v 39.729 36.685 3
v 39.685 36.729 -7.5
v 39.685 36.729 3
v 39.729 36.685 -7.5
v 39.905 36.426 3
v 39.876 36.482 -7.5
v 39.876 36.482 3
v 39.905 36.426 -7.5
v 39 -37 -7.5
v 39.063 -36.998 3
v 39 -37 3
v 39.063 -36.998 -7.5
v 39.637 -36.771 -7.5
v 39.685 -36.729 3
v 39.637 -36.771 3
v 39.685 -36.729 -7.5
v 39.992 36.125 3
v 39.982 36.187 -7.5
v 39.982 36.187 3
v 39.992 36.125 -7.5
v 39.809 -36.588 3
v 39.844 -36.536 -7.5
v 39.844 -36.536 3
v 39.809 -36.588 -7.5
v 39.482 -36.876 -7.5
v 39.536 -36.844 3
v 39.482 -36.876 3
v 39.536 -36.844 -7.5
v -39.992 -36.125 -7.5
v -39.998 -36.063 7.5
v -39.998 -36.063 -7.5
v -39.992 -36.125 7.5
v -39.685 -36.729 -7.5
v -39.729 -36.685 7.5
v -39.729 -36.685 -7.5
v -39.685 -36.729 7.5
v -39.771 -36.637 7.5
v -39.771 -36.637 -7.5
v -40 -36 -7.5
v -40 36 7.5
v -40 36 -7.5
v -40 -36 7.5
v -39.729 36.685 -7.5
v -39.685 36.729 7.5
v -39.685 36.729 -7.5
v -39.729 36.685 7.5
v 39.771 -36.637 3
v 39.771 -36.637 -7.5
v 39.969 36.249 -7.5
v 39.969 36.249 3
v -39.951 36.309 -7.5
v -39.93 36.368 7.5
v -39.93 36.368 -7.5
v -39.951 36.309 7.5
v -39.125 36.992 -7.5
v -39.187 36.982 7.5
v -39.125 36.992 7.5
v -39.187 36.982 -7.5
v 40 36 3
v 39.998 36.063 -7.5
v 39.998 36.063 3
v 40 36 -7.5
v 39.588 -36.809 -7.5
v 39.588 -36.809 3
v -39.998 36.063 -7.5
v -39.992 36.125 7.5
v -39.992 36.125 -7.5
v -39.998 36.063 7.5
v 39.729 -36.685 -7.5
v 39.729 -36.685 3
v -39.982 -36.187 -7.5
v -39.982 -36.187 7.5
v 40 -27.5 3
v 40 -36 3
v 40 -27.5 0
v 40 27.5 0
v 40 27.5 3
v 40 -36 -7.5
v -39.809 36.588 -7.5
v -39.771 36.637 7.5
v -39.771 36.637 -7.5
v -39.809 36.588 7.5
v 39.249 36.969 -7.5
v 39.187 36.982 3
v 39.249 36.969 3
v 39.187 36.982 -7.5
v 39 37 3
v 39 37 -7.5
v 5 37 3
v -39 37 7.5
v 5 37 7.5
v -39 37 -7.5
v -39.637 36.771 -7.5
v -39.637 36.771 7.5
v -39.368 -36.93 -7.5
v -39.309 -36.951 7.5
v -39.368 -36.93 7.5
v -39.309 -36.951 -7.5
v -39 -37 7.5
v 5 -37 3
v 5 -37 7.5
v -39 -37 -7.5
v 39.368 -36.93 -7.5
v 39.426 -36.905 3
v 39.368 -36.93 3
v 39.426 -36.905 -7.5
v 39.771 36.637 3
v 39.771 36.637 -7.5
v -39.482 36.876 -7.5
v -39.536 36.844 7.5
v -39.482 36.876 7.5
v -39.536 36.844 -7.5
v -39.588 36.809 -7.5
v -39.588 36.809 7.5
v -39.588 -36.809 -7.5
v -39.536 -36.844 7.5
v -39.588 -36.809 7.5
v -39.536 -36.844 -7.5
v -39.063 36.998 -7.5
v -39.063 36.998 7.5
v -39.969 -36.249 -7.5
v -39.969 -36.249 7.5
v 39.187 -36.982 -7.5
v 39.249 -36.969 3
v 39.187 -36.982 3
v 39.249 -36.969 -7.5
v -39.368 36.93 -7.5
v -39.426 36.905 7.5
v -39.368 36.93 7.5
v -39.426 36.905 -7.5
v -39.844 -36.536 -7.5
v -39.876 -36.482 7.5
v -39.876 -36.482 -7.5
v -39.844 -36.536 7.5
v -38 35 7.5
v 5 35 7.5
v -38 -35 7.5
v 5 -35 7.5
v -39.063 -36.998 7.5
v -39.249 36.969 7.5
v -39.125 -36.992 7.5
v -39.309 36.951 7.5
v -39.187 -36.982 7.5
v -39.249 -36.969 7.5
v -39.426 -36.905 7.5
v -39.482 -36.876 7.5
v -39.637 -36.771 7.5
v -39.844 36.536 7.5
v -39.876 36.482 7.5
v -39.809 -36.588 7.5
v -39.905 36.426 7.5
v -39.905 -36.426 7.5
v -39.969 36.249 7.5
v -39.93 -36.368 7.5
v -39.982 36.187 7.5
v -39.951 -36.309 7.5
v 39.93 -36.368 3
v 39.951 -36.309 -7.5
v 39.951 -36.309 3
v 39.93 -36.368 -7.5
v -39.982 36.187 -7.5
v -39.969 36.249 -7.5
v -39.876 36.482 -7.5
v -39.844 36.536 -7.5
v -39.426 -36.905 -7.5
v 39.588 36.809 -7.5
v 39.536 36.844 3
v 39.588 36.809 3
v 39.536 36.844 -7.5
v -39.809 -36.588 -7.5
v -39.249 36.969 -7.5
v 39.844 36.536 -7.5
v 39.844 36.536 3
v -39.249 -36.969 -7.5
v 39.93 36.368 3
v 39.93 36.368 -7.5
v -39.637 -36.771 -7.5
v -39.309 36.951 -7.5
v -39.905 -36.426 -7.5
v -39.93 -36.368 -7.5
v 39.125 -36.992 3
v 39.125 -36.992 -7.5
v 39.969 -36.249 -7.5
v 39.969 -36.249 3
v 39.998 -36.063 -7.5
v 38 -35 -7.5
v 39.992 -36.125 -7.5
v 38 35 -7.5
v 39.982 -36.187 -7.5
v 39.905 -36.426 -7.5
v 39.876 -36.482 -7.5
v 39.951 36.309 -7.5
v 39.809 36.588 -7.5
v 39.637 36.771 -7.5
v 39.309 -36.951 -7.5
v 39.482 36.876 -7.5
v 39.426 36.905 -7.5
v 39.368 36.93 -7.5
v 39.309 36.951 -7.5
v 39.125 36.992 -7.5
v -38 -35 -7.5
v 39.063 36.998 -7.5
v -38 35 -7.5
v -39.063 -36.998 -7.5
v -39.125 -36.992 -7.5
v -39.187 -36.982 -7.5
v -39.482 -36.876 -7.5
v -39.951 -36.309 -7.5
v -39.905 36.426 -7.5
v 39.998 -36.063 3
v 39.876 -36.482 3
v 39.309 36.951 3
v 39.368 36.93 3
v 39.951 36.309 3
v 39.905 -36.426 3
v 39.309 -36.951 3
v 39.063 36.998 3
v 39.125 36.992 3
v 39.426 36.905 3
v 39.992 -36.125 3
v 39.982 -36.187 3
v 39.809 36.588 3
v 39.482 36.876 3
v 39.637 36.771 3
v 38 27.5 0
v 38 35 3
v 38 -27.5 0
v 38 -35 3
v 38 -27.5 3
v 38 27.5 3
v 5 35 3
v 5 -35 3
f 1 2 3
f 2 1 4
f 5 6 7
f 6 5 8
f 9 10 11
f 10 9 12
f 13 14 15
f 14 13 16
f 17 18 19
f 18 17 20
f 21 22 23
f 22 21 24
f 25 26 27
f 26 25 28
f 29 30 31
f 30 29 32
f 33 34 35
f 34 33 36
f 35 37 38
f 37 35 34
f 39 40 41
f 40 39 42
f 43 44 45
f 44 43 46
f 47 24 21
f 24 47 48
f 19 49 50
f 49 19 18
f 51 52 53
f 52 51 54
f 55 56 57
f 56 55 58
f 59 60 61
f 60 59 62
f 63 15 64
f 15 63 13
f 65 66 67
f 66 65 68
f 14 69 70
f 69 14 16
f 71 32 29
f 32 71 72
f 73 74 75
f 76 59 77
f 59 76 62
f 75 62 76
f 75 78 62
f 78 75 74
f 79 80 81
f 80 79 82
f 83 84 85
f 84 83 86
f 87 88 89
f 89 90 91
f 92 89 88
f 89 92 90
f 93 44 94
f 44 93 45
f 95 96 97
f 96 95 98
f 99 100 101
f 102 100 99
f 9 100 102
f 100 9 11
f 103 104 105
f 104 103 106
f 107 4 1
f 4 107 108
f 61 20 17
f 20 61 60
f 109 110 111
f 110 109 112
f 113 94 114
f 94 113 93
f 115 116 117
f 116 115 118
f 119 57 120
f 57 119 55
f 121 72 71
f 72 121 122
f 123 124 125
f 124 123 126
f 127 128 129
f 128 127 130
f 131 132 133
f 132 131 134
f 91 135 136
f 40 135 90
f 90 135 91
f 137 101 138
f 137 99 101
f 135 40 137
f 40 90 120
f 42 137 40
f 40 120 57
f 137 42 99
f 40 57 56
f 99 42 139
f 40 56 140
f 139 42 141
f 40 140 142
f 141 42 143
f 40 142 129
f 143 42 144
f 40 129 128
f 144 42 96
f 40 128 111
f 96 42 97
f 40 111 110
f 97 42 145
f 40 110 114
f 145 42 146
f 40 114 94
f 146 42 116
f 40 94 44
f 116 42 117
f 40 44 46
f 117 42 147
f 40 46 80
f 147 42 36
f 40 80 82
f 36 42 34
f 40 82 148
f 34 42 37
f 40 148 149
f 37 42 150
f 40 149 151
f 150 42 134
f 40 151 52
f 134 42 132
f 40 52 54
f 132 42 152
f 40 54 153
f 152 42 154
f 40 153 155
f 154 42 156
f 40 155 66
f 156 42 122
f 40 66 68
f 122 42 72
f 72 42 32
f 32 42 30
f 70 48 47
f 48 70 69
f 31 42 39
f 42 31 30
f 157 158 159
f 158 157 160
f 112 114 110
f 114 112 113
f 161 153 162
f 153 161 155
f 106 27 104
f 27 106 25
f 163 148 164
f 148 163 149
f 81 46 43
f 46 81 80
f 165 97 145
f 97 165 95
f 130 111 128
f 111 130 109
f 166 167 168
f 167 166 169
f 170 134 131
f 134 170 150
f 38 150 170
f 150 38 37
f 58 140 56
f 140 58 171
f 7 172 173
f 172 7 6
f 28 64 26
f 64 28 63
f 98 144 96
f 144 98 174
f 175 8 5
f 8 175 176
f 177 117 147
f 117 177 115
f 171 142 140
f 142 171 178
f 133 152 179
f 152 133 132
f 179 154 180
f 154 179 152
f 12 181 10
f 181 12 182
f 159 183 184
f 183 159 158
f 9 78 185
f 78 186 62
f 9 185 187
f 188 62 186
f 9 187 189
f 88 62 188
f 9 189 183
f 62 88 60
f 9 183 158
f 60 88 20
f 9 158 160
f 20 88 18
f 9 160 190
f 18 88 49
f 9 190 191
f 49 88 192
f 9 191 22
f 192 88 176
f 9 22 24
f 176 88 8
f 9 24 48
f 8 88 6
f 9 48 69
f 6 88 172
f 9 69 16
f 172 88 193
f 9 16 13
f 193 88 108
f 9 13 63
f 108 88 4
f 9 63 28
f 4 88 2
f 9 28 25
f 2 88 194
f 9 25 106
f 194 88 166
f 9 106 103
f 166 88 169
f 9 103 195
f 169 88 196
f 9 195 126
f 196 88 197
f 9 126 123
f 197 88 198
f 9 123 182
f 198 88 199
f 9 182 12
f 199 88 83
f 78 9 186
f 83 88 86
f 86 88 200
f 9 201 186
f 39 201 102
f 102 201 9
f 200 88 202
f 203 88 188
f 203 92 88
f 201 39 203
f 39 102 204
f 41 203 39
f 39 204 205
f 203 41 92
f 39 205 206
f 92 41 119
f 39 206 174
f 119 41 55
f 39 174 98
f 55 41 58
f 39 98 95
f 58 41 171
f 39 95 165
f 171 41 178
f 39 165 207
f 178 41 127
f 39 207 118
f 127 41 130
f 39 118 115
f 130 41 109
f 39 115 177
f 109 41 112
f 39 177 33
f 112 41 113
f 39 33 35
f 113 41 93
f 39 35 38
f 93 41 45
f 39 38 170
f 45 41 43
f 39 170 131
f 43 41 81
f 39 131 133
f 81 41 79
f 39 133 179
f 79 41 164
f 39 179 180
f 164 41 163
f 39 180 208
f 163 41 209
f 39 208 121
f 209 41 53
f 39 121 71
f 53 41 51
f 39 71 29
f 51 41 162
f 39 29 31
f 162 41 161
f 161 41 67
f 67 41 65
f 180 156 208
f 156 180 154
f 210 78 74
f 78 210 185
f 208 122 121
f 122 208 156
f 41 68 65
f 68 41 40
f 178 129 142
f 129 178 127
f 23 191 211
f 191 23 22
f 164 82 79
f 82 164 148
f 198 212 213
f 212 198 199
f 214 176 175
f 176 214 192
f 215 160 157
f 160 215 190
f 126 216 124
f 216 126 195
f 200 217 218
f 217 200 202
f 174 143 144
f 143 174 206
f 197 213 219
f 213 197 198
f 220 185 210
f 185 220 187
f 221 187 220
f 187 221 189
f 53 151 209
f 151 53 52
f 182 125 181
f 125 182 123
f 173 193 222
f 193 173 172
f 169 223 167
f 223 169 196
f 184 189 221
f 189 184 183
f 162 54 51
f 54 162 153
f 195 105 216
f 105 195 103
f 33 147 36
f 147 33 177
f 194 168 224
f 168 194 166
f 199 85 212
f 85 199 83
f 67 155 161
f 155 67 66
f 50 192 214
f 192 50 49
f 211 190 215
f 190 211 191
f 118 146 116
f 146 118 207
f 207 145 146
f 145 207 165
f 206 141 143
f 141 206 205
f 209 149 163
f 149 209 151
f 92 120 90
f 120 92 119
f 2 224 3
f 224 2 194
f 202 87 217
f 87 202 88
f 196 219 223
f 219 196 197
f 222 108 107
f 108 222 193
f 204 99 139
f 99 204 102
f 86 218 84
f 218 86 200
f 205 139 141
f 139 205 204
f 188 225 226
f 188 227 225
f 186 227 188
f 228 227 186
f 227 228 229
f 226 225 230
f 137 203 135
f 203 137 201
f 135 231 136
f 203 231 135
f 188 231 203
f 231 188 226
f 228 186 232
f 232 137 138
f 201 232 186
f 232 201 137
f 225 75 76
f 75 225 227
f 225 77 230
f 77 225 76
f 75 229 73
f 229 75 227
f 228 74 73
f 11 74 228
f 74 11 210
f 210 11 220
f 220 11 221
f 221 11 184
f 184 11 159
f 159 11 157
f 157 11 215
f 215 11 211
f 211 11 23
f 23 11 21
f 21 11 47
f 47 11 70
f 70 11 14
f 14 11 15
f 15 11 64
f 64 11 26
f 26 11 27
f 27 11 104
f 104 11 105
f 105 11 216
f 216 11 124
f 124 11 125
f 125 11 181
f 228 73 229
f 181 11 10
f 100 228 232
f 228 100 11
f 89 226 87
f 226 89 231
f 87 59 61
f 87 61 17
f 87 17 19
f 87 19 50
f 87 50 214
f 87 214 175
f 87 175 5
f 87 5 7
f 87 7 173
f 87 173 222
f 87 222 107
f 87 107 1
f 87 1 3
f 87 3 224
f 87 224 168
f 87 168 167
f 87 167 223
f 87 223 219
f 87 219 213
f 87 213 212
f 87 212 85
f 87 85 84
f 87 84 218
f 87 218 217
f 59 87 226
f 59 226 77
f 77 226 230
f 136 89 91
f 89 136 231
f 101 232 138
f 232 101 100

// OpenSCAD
$fn=100;

difference(){
   minkowski(){
    cube([78, 72, 14], center=true);
    cylinder(1, center=true);
   }
   cube([76, 70, 20], center=true);
   translate([10,0,2])
    cube([75, 55, 4], center=true);
   translate([22.5,0,6])
    cube([35, 80, 6], center=true);
}
